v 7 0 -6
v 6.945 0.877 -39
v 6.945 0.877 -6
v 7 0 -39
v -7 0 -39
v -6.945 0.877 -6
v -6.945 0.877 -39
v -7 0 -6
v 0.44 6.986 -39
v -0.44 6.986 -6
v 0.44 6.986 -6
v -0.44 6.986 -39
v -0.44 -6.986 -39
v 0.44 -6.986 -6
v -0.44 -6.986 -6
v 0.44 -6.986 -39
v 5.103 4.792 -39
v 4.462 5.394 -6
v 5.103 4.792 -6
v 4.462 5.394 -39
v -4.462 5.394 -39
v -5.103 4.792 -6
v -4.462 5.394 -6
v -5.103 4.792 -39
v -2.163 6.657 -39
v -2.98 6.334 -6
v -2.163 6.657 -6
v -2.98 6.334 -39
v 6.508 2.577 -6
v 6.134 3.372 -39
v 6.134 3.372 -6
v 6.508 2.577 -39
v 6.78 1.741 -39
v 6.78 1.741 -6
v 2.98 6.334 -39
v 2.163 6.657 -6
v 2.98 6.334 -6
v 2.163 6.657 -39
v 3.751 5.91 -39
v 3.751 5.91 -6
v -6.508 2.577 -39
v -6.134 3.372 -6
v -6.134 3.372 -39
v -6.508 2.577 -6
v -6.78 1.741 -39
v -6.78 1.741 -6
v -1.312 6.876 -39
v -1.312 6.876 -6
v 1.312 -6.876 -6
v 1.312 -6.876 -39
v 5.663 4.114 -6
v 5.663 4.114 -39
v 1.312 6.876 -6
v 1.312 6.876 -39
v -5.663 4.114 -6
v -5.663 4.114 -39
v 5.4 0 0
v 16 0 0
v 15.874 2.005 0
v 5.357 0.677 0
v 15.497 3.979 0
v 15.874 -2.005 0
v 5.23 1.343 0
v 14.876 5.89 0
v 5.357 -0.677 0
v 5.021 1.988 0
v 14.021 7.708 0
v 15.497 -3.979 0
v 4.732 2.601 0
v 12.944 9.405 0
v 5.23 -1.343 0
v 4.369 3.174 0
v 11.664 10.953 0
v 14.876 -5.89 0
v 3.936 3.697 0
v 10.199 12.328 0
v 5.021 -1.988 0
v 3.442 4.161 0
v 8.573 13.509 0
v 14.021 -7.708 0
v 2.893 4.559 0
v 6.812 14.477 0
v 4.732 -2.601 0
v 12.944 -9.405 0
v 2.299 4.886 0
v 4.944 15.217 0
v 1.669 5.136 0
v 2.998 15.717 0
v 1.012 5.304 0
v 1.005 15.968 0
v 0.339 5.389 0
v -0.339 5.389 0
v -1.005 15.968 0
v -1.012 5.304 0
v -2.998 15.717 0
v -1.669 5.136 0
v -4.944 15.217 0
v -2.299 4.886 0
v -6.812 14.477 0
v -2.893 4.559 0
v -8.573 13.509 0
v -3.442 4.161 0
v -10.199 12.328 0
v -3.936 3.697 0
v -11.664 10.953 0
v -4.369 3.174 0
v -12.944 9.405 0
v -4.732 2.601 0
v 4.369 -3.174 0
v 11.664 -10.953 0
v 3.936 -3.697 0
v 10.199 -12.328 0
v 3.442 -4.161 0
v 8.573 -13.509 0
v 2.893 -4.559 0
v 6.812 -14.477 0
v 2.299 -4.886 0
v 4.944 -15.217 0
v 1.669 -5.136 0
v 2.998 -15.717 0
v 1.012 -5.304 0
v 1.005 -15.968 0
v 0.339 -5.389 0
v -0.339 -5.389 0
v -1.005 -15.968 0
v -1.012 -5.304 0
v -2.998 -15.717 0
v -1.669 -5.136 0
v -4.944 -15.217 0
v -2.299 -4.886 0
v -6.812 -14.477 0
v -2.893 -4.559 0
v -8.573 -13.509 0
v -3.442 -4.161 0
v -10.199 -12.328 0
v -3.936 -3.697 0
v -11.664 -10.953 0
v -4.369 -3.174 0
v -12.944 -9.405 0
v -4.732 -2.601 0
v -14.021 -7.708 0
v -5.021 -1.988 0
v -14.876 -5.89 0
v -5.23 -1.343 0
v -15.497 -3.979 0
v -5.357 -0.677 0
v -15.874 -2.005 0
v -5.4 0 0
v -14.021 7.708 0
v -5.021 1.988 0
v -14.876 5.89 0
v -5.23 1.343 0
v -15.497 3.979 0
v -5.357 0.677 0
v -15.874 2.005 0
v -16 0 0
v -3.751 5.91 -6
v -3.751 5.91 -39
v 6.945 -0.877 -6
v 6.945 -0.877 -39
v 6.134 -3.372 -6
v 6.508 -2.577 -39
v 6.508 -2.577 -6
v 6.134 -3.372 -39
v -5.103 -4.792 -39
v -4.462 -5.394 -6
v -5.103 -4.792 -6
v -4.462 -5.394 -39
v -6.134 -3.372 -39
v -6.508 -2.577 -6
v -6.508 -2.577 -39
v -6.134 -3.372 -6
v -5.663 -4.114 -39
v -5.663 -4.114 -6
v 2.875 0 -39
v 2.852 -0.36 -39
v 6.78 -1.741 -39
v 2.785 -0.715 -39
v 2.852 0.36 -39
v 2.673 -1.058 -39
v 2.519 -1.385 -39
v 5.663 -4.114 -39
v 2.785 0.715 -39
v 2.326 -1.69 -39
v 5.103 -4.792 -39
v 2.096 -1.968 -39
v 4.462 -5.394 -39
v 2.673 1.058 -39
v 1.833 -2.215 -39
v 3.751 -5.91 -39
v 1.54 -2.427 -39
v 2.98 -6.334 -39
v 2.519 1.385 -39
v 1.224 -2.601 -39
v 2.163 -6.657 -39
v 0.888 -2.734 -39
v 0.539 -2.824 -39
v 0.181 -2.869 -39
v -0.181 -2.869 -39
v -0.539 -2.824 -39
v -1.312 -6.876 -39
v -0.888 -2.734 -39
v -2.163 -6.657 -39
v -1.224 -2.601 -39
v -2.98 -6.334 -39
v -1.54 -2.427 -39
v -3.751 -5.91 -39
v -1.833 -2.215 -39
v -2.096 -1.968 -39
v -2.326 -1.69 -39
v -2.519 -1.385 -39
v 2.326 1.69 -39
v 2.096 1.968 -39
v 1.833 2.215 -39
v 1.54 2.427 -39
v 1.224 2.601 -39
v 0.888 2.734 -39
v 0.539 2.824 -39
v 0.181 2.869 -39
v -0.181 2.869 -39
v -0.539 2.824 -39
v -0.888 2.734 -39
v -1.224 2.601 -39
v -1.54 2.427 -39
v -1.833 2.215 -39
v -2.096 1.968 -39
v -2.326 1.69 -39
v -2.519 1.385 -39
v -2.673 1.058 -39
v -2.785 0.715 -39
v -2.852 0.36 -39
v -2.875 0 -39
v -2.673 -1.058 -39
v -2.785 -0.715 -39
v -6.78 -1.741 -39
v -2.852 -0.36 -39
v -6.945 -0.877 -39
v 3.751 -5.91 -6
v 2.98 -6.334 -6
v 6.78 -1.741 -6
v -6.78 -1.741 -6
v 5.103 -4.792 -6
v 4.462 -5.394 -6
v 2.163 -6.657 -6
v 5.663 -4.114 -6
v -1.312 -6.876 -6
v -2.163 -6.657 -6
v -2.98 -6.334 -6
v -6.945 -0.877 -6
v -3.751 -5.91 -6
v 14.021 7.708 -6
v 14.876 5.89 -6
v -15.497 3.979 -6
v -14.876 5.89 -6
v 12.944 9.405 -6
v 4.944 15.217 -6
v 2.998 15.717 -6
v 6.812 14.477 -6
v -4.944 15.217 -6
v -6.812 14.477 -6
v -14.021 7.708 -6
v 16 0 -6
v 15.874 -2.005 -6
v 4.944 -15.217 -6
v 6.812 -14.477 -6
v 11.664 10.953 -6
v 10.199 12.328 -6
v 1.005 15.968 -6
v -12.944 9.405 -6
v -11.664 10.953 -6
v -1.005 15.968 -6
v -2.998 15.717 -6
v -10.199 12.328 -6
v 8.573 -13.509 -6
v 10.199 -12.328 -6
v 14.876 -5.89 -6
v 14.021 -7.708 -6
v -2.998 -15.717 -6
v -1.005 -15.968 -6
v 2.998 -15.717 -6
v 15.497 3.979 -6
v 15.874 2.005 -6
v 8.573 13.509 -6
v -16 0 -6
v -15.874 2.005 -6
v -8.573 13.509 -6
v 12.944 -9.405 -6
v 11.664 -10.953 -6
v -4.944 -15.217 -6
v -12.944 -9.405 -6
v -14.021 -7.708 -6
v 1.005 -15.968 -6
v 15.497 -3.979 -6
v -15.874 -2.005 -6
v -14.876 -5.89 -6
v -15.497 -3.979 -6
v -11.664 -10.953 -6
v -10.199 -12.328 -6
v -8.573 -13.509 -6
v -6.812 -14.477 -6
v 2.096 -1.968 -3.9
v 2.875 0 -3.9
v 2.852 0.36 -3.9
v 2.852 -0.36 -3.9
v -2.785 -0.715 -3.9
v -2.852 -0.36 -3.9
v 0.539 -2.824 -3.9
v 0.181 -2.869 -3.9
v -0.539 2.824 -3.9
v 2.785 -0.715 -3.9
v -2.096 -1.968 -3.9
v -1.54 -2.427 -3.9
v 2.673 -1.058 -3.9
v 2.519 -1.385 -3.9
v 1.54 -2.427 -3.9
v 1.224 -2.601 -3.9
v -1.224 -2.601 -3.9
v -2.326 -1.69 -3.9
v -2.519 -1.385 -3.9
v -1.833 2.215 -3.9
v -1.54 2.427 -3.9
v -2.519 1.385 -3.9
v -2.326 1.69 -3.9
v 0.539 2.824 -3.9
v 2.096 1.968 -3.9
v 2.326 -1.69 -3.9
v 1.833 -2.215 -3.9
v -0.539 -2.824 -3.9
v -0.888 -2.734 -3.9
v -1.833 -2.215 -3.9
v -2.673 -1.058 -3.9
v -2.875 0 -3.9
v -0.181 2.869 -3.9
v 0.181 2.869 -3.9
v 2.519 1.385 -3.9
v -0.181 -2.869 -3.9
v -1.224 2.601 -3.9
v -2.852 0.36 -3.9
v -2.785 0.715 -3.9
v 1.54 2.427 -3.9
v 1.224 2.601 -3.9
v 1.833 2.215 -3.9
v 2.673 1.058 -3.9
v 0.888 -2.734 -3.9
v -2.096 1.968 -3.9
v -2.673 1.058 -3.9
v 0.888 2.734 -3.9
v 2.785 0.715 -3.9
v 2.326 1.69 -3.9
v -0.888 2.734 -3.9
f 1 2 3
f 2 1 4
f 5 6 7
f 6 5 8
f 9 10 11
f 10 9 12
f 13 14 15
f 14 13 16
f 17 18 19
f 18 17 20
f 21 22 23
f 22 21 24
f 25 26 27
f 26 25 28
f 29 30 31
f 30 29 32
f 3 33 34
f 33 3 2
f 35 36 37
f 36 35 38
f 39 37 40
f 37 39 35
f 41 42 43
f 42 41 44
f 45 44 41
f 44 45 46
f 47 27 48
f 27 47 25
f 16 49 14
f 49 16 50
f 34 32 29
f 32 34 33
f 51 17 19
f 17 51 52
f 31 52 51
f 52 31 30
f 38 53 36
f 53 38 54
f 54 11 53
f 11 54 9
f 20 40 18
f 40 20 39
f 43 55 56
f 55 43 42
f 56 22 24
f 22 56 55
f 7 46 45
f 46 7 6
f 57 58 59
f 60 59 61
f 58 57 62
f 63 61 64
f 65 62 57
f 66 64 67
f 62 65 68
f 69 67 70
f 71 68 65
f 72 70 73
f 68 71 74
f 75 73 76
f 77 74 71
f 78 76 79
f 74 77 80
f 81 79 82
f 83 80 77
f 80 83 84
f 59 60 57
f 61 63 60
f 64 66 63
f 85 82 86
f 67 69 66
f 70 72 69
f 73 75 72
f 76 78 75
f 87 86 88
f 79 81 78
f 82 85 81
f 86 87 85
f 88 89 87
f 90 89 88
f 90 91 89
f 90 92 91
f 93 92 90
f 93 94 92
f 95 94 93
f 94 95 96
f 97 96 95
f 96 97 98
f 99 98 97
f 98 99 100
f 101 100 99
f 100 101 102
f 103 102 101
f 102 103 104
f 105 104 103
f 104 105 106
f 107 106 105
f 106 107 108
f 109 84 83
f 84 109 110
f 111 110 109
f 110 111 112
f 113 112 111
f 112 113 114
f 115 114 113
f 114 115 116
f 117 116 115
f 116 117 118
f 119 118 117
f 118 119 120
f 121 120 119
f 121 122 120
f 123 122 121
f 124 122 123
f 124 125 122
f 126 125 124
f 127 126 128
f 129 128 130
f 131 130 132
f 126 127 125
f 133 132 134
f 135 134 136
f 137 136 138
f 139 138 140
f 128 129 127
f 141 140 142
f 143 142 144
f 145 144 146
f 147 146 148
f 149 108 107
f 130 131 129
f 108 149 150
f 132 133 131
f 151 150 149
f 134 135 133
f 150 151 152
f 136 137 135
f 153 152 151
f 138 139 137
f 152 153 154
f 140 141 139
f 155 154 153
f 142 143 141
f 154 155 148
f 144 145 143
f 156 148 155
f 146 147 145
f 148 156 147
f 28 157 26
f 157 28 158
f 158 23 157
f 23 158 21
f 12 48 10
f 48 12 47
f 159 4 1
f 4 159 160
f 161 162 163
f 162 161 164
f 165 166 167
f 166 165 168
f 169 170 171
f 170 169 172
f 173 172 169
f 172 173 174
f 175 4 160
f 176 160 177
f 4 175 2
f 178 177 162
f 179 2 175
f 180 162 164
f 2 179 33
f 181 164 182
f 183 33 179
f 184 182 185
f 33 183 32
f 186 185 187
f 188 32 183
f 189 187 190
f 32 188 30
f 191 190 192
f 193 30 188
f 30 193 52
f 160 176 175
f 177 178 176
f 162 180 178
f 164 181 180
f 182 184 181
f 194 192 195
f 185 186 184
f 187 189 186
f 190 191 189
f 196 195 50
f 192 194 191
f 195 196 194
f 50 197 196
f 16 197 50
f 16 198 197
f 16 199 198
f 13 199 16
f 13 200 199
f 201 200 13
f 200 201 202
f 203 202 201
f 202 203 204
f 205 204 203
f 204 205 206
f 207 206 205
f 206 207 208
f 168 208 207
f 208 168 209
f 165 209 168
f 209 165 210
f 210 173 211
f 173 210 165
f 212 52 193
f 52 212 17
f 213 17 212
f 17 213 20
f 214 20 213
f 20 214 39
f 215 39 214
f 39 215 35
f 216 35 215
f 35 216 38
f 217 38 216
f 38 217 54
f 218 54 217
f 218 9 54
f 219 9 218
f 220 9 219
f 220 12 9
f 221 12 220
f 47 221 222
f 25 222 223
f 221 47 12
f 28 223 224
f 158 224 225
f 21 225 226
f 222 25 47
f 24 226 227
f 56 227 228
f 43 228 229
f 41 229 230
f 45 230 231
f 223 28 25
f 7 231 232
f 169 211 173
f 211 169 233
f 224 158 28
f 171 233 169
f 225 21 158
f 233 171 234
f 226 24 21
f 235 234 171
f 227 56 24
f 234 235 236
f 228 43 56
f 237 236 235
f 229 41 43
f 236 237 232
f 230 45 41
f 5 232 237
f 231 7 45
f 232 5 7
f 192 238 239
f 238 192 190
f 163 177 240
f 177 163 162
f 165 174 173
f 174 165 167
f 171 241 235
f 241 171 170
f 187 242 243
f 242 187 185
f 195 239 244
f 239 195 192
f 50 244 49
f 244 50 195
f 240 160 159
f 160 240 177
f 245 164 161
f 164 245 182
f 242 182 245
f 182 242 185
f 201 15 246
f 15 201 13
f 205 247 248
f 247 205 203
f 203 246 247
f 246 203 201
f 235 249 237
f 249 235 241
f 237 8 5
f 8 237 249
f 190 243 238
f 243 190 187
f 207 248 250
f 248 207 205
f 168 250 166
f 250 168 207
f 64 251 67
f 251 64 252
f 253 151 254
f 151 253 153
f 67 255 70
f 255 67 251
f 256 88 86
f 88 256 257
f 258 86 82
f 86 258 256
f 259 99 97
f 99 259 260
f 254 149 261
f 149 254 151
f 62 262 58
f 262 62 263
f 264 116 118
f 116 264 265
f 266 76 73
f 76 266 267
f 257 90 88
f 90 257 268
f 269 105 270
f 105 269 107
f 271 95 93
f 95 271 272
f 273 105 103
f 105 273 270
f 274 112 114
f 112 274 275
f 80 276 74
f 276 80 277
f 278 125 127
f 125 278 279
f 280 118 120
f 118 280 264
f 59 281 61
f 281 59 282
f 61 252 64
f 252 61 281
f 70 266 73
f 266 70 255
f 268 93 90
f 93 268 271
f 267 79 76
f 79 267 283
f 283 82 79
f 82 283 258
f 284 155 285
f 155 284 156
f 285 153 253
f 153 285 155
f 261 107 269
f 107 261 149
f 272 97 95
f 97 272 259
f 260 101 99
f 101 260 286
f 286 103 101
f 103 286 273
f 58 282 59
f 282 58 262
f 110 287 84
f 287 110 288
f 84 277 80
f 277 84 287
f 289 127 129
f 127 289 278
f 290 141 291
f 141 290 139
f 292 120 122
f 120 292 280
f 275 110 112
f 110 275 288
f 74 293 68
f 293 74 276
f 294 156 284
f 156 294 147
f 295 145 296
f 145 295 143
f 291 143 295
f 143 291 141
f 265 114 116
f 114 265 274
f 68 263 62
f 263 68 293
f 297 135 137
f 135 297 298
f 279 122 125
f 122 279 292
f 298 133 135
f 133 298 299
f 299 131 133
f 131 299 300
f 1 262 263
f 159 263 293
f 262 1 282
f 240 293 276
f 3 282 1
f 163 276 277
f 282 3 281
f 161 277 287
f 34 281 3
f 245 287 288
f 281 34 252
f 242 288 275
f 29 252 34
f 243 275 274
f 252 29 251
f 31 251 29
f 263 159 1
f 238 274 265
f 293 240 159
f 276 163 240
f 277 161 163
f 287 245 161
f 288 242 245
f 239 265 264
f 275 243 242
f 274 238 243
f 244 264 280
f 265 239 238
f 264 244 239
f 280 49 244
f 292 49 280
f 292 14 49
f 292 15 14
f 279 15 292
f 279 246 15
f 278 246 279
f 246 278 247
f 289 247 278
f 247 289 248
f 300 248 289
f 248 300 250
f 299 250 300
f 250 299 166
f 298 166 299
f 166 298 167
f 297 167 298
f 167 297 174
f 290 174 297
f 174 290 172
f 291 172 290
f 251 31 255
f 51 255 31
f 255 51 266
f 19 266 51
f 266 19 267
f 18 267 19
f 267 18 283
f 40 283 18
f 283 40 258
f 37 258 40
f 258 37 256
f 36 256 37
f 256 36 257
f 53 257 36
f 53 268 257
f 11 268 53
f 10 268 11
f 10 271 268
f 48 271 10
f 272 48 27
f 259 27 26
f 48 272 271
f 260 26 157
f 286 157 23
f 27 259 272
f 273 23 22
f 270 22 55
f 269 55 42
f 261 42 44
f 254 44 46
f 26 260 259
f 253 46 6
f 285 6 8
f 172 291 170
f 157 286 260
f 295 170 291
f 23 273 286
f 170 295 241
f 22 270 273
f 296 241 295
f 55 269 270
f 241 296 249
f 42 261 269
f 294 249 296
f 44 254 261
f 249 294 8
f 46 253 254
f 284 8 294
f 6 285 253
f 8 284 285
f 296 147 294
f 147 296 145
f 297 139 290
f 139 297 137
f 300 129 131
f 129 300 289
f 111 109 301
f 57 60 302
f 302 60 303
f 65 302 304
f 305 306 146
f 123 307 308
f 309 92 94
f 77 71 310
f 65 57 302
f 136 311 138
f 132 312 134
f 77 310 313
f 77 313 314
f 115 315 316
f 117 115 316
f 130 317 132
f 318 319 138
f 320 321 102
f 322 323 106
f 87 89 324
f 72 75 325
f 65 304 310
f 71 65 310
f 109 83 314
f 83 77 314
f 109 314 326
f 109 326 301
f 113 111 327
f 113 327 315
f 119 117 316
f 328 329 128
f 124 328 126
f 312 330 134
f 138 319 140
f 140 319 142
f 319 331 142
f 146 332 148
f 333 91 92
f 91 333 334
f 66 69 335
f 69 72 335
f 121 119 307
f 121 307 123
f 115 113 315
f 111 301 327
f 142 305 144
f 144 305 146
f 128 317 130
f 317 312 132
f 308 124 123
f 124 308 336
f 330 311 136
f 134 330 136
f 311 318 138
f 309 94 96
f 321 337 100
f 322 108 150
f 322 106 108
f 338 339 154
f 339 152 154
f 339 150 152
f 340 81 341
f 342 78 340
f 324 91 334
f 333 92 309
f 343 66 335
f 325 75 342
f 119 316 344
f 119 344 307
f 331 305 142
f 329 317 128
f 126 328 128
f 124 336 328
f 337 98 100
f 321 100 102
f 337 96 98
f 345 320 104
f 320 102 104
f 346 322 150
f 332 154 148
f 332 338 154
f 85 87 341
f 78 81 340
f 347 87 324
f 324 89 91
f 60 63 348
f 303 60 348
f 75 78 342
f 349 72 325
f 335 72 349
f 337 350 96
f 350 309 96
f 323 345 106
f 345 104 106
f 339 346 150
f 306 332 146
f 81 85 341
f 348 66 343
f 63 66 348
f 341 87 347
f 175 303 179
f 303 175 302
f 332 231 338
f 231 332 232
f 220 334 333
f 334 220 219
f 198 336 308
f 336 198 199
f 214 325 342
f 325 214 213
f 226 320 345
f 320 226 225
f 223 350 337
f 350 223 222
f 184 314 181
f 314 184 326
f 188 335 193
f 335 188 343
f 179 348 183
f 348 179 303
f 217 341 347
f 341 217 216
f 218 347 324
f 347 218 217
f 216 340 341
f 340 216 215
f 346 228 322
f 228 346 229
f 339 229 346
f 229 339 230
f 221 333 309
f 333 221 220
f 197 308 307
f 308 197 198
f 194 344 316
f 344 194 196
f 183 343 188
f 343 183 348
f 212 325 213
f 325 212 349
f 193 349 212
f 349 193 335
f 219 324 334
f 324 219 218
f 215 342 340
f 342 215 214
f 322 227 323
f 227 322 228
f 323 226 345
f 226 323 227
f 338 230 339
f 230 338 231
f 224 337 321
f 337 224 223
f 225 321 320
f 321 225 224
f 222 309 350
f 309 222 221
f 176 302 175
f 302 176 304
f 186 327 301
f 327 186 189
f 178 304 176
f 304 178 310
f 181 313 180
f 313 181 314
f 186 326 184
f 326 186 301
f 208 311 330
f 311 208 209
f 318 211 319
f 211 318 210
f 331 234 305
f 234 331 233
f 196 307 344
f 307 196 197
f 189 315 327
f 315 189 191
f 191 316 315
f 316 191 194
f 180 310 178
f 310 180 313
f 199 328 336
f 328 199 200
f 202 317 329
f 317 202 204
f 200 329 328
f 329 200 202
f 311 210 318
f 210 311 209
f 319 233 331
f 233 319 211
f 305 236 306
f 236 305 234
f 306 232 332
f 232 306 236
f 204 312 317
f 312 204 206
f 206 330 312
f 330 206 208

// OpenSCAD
$fn = 50;


difference() {
	union() {
		translate(v = [0, 0, -39.0000000000]) {
			cylinder(h = 39, r = 7.0000000000);
		}
		translate(v = [0, 0, -6.0000000000]) {
			cylinder(h = 6, r = 16.0000000000);
		}
	}
	union() {
		translate(v = [0, 0, 0]) {
			rotate(a = [0, 0, 0]) {
				difference() {
					union() {
						#translate(v = [0, 0, -39.0000000000]) {
							cylinder(h = 39, r = 2.6000000000);
						}
						#translate(v = [0, 0, -3.9000000000]) {
							cylinder(h = 3.9000000000, r = 7.0000000000, r1 = 2.8750000000, r2 = 5.4000000000);
						}
						#translate(v = [0, 0, -39.0000000000]) {
							cylinder(h = 39, r = 2.8750000000);
						}
						#translate(v = [0, 0, -39.0000000000]) {
							cylinder(h = 39, r = 2.6000000000);
						}
					}
					union();
				}
			}
		}
	}
}
